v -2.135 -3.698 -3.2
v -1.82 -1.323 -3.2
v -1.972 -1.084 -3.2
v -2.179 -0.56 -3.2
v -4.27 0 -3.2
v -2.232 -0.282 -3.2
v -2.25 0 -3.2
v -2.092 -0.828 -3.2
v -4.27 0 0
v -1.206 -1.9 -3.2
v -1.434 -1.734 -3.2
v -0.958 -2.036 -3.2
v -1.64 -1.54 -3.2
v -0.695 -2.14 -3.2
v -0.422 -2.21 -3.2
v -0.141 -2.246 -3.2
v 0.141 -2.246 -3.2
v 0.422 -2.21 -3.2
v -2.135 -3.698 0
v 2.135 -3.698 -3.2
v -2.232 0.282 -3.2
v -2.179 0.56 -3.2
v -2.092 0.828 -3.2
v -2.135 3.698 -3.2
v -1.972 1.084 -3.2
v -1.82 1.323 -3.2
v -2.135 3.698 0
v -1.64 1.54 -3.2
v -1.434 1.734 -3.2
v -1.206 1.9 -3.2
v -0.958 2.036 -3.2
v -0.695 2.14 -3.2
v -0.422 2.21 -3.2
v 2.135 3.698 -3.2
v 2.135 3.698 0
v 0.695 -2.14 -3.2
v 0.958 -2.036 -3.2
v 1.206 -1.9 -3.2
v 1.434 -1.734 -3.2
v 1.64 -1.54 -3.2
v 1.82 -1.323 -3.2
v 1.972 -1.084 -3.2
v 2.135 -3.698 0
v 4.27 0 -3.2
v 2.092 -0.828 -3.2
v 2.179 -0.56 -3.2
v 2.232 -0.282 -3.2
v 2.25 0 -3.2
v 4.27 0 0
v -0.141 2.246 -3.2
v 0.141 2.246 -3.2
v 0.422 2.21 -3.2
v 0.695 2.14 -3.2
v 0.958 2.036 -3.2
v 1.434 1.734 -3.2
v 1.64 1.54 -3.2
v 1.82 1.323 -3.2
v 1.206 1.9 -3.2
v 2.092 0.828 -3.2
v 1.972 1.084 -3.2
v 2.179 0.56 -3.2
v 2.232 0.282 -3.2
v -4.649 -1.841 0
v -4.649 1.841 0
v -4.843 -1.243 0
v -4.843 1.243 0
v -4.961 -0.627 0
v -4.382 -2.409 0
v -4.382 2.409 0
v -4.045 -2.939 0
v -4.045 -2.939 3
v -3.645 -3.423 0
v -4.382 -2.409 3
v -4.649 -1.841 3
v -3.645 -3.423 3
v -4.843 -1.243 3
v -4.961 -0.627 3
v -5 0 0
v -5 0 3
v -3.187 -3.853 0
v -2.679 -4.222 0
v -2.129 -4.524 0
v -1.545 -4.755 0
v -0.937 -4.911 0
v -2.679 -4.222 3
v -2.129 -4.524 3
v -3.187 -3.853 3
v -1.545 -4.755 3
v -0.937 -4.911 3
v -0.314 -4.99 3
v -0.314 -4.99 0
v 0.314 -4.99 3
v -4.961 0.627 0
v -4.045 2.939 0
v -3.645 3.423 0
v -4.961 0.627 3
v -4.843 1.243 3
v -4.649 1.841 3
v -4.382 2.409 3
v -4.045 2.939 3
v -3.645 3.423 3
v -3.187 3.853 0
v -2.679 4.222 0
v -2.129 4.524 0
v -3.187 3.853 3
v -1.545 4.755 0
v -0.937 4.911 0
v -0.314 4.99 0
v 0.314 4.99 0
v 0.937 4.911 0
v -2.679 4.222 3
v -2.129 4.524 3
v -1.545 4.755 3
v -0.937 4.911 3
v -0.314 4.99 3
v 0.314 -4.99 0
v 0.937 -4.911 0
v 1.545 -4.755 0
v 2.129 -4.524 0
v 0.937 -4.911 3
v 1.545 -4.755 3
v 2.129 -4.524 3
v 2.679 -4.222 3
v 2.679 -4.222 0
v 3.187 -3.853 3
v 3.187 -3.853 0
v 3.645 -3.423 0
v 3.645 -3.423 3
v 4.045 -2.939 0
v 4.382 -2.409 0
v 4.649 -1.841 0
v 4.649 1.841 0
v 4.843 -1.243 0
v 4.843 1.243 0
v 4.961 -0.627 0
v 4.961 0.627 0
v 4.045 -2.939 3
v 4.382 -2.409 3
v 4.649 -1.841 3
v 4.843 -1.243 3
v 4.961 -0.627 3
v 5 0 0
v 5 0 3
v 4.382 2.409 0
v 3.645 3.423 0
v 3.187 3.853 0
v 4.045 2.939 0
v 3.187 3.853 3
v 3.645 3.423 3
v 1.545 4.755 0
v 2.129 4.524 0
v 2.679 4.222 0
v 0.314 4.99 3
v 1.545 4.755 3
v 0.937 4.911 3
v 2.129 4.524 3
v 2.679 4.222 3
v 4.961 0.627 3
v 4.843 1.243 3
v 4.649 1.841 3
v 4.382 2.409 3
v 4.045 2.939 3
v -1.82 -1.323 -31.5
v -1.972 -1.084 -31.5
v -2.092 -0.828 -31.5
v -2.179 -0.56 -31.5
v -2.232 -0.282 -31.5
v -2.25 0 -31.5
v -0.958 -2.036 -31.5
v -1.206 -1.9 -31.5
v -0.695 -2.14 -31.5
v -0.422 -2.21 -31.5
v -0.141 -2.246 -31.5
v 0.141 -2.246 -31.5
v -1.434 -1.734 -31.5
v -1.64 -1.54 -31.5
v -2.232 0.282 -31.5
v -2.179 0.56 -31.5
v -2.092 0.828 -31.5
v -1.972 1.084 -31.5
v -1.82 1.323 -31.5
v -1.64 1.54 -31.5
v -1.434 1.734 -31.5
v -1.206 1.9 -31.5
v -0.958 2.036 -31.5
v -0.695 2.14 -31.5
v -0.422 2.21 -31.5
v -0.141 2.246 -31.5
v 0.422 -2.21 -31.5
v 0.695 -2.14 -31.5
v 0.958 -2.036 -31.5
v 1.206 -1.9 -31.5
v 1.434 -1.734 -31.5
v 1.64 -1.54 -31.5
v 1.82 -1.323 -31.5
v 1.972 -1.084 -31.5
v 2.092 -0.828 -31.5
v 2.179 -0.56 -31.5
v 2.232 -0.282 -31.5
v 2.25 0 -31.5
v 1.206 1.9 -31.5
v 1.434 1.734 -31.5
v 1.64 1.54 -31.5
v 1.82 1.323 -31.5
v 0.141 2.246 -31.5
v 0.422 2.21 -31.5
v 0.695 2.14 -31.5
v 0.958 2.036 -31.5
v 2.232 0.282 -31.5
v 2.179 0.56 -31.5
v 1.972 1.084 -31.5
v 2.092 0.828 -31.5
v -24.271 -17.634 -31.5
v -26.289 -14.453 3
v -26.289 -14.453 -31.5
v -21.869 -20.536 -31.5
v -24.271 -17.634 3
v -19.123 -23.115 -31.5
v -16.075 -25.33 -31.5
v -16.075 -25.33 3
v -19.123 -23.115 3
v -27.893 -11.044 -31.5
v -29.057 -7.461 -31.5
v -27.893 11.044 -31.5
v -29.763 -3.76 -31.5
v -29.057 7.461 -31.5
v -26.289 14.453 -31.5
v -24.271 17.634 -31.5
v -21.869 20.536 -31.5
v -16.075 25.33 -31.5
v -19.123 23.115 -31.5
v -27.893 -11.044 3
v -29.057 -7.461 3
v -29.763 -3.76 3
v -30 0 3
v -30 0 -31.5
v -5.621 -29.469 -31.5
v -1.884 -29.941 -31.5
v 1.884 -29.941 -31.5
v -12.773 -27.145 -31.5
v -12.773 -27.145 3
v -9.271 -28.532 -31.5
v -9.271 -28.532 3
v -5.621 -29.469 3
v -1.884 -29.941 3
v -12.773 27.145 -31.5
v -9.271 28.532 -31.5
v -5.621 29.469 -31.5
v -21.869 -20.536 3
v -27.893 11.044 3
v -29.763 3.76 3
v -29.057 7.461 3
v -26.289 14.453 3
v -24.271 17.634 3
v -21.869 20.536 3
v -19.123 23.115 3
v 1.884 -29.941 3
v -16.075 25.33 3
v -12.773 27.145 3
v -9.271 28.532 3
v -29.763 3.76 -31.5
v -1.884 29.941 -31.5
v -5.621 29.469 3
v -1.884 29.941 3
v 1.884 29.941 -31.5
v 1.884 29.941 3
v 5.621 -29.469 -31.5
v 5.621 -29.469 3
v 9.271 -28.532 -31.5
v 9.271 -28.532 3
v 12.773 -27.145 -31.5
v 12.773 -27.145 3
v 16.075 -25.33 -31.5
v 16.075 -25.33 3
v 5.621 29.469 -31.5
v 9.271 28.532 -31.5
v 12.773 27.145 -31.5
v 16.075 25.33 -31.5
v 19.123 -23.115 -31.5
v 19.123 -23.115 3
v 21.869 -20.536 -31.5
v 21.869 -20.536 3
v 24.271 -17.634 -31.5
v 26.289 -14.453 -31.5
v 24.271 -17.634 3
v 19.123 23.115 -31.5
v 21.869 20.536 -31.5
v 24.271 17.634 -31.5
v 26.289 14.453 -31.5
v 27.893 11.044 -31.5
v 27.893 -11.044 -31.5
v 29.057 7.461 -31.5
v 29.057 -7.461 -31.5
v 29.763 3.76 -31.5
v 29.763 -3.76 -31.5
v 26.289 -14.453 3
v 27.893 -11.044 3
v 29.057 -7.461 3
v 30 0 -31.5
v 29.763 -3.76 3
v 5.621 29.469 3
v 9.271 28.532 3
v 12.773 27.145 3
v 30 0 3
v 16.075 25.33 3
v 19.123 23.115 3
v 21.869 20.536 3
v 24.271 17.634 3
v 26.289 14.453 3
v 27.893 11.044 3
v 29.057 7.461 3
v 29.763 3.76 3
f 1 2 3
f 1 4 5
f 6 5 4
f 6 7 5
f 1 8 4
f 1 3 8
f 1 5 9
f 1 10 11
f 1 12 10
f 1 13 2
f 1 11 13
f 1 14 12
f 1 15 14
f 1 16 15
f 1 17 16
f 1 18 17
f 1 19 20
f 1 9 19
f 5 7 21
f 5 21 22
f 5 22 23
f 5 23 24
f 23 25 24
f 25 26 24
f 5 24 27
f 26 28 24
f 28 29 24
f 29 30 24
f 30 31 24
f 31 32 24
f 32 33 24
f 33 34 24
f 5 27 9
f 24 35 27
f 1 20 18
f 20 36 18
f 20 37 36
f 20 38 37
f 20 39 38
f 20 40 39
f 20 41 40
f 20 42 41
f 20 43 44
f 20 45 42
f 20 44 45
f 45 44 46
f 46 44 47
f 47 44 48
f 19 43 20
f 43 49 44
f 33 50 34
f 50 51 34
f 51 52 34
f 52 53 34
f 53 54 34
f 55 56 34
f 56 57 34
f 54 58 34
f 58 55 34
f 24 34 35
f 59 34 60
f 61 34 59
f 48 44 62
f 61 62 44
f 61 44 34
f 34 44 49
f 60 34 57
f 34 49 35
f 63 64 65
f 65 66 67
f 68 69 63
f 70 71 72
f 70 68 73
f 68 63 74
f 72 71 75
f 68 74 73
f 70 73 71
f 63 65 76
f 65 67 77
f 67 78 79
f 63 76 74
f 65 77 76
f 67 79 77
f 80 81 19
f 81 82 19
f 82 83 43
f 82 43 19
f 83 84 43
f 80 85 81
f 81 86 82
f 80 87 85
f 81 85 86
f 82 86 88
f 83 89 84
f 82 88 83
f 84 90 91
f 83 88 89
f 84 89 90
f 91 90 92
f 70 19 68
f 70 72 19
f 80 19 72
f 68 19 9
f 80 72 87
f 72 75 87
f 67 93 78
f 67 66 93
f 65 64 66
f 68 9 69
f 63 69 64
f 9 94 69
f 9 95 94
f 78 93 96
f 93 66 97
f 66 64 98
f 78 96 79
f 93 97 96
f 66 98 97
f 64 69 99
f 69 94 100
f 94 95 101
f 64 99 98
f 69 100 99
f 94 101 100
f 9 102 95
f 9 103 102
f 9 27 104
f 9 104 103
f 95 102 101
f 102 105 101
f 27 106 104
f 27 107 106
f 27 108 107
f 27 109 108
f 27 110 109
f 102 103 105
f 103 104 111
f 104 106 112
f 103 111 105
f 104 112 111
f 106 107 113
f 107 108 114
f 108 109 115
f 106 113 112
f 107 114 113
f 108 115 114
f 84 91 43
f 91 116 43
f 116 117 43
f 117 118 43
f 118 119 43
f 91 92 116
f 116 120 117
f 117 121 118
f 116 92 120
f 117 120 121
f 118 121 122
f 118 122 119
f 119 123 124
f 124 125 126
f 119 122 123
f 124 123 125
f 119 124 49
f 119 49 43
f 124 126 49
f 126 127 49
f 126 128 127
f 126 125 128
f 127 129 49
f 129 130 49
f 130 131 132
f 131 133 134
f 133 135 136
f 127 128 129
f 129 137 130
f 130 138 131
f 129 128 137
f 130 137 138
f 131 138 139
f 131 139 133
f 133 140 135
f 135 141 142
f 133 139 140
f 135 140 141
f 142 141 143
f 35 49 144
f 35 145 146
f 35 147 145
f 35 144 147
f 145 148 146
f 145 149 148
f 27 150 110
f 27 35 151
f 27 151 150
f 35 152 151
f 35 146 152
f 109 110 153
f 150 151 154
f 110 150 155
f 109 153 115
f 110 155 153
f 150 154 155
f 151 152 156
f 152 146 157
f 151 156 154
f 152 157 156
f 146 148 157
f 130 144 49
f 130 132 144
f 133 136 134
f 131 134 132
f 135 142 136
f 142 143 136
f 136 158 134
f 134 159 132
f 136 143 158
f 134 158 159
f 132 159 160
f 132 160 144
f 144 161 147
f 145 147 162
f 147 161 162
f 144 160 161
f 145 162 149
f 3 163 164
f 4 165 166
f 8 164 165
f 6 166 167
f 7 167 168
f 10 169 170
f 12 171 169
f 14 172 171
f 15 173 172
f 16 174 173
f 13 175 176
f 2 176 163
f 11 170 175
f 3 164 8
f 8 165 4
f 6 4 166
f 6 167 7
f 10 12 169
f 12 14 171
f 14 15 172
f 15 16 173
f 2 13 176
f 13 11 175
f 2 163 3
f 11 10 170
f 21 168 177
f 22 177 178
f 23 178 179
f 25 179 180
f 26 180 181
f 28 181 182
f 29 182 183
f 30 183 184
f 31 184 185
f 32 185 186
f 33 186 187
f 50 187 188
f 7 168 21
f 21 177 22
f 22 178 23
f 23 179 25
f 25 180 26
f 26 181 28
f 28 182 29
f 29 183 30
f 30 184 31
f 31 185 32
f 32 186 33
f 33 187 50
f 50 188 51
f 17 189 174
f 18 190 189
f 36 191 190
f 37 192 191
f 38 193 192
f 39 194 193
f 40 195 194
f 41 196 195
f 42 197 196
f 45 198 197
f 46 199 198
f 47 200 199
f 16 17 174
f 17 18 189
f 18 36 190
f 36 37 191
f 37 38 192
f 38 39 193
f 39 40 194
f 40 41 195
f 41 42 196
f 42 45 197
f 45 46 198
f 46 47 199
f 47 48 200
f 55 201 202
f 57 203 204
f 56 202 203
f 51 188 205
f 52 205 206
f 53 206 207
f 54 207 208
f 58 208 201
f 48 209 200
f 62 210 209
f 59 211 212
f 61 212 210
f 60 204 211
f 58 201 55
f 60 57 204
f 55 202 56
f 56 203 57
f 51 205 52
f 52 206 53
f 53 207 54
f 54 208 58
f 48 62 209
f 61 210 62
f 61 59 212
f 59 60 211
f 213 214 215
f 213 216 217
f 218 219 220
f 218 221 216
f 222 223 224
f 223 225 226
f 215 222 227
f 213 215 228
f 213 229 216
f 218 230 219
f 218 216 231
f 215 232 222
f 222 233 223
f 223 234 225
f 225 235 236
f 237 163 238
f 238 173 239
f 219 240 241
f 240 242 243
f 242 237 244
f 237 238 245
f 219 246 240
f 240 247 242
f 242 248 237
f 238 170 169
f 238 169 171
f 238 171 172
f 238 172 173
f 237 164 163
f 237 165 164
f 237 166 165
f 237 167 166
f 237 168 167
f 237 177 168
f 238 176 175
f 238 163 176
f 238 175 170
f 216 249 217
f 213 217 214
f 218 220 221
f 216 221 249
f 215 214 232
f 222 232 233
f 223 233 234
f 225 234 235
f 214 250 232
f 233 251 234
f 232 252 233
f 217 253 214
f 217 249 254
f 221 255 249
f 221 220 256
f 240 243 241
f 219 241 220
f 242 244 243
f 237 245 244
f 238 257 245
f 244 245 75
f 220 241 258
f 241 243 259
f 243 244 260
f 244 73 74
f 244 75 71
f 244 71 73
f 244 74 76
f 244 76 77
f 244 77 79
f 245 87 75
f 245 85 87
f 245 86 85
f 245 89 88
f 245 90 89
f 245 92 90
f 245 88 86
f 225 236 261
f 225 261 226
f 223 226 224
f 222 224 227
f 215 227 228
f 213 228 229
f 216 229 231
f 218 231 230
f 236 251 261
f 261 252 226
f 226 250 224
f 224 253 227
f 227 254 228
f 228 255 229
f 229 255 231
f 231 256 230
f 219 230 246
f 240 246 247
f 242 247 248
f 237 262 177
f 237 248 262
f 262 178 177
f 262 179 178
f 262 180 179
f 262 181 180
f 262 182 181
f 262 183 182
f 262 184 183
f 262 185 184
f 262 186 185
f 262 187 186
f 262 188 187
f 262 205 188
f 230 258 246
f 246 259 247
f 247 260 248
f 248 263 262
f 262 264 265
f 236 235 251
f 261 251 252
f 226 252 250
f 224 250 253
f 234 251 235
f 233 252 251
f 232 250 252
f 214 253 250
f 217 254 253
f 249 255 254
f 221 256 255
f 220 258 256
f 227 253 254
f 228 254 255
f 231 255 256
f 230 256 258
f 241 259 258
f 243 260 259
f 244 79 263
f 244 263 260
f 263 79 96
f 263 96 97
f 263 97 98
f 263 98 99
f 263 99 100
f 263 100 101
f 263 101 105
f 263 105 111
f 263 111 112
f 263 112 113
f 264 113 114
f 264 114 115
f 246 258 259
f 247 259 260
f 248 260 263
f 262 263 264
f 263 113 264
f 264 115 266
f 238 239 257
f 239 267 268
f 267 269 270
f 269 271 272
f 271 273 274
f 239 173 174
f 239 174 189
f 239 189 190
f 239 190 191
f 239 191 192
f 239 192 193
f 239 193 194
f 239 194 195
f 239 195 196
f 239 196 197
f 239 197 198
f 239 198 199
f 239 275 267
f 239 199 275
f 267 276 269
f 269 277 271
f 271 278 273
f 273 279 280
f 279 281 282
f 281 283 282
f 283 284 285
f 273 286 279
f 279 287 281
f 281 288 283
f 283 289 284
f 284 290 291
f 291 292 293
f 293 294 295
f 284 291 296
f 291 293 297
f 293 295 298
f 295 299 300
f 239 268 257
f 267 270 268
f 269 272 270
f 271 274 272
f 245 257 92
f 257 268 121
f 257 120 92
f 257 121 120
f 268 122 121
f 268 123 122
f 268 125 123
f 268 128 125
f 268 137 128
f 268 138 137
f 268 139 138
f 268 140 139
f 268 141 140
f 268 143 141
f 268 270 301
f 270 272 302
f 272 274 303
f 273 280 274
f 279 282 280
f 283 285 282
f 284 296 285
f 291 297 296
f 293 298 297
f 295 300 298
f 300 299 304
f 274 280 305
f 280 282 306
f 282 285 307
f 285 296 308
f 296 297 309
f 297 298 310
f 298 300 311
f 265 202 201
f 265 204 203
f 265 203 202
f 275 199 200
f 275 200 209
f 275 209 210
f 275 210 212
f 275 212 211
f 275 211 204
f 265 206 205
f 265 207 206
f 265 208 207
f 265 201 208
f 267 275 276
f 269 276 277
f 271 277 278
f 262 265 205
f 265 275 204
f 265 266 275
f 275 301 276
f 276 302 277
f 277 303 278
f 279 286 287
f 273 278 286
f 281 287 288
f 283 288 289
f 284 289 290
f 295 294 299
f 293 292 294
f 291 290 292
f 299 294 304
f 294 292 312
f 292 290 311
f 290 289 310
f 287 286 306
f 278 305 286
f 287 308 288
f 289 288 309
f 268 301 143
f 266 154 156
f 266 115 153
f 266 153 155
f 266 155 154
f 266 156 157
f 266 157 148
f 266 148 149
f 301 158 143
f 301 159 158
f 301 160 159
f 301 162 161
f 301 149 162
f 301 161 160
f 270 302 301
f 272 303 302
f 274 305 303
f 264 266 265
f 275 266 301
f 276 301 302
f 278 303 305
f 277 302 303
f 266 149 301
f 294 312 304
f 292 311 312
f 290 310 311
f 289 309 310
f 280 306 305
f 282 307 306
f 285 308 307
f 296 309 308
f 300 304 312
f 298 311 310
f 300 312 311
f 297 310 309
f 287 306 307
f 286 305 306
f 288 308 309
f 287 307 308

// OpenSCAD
$fn = 50;

difference() {
	union() {
		translate(v = [0, 0, -31.5]) {
			cylinder(h = 34.5, r = 30.0);
		}
	}
	union() {
		translate(v = [0, 0, 0]) {
			rotate(a = [0, 0, 0]) {
				difference() {
					union() {
						translate(v = [0, 0, -3.2]) {
							linear_extrude(height = 3.2) {
								polygon(points = [[4.2698, 0.0], [2.1349000000000005, 3.697755269078796], [-2.134899999999999, 3.6977552690787965], [-4.2698, 5.228996902999369e-16], [-2.134900000000002, -3.6977552690787956], [2.1348999999999974, -3.697755269078798]]);
							}
						}
					}
					union();
				}
			}
		}
		#cylinder(h = 3, r = 5.0);
		#translate(v = [0, 0, -100.0]) {
			cylinder(h = 200, r = 2.25);
		}
	}
}
